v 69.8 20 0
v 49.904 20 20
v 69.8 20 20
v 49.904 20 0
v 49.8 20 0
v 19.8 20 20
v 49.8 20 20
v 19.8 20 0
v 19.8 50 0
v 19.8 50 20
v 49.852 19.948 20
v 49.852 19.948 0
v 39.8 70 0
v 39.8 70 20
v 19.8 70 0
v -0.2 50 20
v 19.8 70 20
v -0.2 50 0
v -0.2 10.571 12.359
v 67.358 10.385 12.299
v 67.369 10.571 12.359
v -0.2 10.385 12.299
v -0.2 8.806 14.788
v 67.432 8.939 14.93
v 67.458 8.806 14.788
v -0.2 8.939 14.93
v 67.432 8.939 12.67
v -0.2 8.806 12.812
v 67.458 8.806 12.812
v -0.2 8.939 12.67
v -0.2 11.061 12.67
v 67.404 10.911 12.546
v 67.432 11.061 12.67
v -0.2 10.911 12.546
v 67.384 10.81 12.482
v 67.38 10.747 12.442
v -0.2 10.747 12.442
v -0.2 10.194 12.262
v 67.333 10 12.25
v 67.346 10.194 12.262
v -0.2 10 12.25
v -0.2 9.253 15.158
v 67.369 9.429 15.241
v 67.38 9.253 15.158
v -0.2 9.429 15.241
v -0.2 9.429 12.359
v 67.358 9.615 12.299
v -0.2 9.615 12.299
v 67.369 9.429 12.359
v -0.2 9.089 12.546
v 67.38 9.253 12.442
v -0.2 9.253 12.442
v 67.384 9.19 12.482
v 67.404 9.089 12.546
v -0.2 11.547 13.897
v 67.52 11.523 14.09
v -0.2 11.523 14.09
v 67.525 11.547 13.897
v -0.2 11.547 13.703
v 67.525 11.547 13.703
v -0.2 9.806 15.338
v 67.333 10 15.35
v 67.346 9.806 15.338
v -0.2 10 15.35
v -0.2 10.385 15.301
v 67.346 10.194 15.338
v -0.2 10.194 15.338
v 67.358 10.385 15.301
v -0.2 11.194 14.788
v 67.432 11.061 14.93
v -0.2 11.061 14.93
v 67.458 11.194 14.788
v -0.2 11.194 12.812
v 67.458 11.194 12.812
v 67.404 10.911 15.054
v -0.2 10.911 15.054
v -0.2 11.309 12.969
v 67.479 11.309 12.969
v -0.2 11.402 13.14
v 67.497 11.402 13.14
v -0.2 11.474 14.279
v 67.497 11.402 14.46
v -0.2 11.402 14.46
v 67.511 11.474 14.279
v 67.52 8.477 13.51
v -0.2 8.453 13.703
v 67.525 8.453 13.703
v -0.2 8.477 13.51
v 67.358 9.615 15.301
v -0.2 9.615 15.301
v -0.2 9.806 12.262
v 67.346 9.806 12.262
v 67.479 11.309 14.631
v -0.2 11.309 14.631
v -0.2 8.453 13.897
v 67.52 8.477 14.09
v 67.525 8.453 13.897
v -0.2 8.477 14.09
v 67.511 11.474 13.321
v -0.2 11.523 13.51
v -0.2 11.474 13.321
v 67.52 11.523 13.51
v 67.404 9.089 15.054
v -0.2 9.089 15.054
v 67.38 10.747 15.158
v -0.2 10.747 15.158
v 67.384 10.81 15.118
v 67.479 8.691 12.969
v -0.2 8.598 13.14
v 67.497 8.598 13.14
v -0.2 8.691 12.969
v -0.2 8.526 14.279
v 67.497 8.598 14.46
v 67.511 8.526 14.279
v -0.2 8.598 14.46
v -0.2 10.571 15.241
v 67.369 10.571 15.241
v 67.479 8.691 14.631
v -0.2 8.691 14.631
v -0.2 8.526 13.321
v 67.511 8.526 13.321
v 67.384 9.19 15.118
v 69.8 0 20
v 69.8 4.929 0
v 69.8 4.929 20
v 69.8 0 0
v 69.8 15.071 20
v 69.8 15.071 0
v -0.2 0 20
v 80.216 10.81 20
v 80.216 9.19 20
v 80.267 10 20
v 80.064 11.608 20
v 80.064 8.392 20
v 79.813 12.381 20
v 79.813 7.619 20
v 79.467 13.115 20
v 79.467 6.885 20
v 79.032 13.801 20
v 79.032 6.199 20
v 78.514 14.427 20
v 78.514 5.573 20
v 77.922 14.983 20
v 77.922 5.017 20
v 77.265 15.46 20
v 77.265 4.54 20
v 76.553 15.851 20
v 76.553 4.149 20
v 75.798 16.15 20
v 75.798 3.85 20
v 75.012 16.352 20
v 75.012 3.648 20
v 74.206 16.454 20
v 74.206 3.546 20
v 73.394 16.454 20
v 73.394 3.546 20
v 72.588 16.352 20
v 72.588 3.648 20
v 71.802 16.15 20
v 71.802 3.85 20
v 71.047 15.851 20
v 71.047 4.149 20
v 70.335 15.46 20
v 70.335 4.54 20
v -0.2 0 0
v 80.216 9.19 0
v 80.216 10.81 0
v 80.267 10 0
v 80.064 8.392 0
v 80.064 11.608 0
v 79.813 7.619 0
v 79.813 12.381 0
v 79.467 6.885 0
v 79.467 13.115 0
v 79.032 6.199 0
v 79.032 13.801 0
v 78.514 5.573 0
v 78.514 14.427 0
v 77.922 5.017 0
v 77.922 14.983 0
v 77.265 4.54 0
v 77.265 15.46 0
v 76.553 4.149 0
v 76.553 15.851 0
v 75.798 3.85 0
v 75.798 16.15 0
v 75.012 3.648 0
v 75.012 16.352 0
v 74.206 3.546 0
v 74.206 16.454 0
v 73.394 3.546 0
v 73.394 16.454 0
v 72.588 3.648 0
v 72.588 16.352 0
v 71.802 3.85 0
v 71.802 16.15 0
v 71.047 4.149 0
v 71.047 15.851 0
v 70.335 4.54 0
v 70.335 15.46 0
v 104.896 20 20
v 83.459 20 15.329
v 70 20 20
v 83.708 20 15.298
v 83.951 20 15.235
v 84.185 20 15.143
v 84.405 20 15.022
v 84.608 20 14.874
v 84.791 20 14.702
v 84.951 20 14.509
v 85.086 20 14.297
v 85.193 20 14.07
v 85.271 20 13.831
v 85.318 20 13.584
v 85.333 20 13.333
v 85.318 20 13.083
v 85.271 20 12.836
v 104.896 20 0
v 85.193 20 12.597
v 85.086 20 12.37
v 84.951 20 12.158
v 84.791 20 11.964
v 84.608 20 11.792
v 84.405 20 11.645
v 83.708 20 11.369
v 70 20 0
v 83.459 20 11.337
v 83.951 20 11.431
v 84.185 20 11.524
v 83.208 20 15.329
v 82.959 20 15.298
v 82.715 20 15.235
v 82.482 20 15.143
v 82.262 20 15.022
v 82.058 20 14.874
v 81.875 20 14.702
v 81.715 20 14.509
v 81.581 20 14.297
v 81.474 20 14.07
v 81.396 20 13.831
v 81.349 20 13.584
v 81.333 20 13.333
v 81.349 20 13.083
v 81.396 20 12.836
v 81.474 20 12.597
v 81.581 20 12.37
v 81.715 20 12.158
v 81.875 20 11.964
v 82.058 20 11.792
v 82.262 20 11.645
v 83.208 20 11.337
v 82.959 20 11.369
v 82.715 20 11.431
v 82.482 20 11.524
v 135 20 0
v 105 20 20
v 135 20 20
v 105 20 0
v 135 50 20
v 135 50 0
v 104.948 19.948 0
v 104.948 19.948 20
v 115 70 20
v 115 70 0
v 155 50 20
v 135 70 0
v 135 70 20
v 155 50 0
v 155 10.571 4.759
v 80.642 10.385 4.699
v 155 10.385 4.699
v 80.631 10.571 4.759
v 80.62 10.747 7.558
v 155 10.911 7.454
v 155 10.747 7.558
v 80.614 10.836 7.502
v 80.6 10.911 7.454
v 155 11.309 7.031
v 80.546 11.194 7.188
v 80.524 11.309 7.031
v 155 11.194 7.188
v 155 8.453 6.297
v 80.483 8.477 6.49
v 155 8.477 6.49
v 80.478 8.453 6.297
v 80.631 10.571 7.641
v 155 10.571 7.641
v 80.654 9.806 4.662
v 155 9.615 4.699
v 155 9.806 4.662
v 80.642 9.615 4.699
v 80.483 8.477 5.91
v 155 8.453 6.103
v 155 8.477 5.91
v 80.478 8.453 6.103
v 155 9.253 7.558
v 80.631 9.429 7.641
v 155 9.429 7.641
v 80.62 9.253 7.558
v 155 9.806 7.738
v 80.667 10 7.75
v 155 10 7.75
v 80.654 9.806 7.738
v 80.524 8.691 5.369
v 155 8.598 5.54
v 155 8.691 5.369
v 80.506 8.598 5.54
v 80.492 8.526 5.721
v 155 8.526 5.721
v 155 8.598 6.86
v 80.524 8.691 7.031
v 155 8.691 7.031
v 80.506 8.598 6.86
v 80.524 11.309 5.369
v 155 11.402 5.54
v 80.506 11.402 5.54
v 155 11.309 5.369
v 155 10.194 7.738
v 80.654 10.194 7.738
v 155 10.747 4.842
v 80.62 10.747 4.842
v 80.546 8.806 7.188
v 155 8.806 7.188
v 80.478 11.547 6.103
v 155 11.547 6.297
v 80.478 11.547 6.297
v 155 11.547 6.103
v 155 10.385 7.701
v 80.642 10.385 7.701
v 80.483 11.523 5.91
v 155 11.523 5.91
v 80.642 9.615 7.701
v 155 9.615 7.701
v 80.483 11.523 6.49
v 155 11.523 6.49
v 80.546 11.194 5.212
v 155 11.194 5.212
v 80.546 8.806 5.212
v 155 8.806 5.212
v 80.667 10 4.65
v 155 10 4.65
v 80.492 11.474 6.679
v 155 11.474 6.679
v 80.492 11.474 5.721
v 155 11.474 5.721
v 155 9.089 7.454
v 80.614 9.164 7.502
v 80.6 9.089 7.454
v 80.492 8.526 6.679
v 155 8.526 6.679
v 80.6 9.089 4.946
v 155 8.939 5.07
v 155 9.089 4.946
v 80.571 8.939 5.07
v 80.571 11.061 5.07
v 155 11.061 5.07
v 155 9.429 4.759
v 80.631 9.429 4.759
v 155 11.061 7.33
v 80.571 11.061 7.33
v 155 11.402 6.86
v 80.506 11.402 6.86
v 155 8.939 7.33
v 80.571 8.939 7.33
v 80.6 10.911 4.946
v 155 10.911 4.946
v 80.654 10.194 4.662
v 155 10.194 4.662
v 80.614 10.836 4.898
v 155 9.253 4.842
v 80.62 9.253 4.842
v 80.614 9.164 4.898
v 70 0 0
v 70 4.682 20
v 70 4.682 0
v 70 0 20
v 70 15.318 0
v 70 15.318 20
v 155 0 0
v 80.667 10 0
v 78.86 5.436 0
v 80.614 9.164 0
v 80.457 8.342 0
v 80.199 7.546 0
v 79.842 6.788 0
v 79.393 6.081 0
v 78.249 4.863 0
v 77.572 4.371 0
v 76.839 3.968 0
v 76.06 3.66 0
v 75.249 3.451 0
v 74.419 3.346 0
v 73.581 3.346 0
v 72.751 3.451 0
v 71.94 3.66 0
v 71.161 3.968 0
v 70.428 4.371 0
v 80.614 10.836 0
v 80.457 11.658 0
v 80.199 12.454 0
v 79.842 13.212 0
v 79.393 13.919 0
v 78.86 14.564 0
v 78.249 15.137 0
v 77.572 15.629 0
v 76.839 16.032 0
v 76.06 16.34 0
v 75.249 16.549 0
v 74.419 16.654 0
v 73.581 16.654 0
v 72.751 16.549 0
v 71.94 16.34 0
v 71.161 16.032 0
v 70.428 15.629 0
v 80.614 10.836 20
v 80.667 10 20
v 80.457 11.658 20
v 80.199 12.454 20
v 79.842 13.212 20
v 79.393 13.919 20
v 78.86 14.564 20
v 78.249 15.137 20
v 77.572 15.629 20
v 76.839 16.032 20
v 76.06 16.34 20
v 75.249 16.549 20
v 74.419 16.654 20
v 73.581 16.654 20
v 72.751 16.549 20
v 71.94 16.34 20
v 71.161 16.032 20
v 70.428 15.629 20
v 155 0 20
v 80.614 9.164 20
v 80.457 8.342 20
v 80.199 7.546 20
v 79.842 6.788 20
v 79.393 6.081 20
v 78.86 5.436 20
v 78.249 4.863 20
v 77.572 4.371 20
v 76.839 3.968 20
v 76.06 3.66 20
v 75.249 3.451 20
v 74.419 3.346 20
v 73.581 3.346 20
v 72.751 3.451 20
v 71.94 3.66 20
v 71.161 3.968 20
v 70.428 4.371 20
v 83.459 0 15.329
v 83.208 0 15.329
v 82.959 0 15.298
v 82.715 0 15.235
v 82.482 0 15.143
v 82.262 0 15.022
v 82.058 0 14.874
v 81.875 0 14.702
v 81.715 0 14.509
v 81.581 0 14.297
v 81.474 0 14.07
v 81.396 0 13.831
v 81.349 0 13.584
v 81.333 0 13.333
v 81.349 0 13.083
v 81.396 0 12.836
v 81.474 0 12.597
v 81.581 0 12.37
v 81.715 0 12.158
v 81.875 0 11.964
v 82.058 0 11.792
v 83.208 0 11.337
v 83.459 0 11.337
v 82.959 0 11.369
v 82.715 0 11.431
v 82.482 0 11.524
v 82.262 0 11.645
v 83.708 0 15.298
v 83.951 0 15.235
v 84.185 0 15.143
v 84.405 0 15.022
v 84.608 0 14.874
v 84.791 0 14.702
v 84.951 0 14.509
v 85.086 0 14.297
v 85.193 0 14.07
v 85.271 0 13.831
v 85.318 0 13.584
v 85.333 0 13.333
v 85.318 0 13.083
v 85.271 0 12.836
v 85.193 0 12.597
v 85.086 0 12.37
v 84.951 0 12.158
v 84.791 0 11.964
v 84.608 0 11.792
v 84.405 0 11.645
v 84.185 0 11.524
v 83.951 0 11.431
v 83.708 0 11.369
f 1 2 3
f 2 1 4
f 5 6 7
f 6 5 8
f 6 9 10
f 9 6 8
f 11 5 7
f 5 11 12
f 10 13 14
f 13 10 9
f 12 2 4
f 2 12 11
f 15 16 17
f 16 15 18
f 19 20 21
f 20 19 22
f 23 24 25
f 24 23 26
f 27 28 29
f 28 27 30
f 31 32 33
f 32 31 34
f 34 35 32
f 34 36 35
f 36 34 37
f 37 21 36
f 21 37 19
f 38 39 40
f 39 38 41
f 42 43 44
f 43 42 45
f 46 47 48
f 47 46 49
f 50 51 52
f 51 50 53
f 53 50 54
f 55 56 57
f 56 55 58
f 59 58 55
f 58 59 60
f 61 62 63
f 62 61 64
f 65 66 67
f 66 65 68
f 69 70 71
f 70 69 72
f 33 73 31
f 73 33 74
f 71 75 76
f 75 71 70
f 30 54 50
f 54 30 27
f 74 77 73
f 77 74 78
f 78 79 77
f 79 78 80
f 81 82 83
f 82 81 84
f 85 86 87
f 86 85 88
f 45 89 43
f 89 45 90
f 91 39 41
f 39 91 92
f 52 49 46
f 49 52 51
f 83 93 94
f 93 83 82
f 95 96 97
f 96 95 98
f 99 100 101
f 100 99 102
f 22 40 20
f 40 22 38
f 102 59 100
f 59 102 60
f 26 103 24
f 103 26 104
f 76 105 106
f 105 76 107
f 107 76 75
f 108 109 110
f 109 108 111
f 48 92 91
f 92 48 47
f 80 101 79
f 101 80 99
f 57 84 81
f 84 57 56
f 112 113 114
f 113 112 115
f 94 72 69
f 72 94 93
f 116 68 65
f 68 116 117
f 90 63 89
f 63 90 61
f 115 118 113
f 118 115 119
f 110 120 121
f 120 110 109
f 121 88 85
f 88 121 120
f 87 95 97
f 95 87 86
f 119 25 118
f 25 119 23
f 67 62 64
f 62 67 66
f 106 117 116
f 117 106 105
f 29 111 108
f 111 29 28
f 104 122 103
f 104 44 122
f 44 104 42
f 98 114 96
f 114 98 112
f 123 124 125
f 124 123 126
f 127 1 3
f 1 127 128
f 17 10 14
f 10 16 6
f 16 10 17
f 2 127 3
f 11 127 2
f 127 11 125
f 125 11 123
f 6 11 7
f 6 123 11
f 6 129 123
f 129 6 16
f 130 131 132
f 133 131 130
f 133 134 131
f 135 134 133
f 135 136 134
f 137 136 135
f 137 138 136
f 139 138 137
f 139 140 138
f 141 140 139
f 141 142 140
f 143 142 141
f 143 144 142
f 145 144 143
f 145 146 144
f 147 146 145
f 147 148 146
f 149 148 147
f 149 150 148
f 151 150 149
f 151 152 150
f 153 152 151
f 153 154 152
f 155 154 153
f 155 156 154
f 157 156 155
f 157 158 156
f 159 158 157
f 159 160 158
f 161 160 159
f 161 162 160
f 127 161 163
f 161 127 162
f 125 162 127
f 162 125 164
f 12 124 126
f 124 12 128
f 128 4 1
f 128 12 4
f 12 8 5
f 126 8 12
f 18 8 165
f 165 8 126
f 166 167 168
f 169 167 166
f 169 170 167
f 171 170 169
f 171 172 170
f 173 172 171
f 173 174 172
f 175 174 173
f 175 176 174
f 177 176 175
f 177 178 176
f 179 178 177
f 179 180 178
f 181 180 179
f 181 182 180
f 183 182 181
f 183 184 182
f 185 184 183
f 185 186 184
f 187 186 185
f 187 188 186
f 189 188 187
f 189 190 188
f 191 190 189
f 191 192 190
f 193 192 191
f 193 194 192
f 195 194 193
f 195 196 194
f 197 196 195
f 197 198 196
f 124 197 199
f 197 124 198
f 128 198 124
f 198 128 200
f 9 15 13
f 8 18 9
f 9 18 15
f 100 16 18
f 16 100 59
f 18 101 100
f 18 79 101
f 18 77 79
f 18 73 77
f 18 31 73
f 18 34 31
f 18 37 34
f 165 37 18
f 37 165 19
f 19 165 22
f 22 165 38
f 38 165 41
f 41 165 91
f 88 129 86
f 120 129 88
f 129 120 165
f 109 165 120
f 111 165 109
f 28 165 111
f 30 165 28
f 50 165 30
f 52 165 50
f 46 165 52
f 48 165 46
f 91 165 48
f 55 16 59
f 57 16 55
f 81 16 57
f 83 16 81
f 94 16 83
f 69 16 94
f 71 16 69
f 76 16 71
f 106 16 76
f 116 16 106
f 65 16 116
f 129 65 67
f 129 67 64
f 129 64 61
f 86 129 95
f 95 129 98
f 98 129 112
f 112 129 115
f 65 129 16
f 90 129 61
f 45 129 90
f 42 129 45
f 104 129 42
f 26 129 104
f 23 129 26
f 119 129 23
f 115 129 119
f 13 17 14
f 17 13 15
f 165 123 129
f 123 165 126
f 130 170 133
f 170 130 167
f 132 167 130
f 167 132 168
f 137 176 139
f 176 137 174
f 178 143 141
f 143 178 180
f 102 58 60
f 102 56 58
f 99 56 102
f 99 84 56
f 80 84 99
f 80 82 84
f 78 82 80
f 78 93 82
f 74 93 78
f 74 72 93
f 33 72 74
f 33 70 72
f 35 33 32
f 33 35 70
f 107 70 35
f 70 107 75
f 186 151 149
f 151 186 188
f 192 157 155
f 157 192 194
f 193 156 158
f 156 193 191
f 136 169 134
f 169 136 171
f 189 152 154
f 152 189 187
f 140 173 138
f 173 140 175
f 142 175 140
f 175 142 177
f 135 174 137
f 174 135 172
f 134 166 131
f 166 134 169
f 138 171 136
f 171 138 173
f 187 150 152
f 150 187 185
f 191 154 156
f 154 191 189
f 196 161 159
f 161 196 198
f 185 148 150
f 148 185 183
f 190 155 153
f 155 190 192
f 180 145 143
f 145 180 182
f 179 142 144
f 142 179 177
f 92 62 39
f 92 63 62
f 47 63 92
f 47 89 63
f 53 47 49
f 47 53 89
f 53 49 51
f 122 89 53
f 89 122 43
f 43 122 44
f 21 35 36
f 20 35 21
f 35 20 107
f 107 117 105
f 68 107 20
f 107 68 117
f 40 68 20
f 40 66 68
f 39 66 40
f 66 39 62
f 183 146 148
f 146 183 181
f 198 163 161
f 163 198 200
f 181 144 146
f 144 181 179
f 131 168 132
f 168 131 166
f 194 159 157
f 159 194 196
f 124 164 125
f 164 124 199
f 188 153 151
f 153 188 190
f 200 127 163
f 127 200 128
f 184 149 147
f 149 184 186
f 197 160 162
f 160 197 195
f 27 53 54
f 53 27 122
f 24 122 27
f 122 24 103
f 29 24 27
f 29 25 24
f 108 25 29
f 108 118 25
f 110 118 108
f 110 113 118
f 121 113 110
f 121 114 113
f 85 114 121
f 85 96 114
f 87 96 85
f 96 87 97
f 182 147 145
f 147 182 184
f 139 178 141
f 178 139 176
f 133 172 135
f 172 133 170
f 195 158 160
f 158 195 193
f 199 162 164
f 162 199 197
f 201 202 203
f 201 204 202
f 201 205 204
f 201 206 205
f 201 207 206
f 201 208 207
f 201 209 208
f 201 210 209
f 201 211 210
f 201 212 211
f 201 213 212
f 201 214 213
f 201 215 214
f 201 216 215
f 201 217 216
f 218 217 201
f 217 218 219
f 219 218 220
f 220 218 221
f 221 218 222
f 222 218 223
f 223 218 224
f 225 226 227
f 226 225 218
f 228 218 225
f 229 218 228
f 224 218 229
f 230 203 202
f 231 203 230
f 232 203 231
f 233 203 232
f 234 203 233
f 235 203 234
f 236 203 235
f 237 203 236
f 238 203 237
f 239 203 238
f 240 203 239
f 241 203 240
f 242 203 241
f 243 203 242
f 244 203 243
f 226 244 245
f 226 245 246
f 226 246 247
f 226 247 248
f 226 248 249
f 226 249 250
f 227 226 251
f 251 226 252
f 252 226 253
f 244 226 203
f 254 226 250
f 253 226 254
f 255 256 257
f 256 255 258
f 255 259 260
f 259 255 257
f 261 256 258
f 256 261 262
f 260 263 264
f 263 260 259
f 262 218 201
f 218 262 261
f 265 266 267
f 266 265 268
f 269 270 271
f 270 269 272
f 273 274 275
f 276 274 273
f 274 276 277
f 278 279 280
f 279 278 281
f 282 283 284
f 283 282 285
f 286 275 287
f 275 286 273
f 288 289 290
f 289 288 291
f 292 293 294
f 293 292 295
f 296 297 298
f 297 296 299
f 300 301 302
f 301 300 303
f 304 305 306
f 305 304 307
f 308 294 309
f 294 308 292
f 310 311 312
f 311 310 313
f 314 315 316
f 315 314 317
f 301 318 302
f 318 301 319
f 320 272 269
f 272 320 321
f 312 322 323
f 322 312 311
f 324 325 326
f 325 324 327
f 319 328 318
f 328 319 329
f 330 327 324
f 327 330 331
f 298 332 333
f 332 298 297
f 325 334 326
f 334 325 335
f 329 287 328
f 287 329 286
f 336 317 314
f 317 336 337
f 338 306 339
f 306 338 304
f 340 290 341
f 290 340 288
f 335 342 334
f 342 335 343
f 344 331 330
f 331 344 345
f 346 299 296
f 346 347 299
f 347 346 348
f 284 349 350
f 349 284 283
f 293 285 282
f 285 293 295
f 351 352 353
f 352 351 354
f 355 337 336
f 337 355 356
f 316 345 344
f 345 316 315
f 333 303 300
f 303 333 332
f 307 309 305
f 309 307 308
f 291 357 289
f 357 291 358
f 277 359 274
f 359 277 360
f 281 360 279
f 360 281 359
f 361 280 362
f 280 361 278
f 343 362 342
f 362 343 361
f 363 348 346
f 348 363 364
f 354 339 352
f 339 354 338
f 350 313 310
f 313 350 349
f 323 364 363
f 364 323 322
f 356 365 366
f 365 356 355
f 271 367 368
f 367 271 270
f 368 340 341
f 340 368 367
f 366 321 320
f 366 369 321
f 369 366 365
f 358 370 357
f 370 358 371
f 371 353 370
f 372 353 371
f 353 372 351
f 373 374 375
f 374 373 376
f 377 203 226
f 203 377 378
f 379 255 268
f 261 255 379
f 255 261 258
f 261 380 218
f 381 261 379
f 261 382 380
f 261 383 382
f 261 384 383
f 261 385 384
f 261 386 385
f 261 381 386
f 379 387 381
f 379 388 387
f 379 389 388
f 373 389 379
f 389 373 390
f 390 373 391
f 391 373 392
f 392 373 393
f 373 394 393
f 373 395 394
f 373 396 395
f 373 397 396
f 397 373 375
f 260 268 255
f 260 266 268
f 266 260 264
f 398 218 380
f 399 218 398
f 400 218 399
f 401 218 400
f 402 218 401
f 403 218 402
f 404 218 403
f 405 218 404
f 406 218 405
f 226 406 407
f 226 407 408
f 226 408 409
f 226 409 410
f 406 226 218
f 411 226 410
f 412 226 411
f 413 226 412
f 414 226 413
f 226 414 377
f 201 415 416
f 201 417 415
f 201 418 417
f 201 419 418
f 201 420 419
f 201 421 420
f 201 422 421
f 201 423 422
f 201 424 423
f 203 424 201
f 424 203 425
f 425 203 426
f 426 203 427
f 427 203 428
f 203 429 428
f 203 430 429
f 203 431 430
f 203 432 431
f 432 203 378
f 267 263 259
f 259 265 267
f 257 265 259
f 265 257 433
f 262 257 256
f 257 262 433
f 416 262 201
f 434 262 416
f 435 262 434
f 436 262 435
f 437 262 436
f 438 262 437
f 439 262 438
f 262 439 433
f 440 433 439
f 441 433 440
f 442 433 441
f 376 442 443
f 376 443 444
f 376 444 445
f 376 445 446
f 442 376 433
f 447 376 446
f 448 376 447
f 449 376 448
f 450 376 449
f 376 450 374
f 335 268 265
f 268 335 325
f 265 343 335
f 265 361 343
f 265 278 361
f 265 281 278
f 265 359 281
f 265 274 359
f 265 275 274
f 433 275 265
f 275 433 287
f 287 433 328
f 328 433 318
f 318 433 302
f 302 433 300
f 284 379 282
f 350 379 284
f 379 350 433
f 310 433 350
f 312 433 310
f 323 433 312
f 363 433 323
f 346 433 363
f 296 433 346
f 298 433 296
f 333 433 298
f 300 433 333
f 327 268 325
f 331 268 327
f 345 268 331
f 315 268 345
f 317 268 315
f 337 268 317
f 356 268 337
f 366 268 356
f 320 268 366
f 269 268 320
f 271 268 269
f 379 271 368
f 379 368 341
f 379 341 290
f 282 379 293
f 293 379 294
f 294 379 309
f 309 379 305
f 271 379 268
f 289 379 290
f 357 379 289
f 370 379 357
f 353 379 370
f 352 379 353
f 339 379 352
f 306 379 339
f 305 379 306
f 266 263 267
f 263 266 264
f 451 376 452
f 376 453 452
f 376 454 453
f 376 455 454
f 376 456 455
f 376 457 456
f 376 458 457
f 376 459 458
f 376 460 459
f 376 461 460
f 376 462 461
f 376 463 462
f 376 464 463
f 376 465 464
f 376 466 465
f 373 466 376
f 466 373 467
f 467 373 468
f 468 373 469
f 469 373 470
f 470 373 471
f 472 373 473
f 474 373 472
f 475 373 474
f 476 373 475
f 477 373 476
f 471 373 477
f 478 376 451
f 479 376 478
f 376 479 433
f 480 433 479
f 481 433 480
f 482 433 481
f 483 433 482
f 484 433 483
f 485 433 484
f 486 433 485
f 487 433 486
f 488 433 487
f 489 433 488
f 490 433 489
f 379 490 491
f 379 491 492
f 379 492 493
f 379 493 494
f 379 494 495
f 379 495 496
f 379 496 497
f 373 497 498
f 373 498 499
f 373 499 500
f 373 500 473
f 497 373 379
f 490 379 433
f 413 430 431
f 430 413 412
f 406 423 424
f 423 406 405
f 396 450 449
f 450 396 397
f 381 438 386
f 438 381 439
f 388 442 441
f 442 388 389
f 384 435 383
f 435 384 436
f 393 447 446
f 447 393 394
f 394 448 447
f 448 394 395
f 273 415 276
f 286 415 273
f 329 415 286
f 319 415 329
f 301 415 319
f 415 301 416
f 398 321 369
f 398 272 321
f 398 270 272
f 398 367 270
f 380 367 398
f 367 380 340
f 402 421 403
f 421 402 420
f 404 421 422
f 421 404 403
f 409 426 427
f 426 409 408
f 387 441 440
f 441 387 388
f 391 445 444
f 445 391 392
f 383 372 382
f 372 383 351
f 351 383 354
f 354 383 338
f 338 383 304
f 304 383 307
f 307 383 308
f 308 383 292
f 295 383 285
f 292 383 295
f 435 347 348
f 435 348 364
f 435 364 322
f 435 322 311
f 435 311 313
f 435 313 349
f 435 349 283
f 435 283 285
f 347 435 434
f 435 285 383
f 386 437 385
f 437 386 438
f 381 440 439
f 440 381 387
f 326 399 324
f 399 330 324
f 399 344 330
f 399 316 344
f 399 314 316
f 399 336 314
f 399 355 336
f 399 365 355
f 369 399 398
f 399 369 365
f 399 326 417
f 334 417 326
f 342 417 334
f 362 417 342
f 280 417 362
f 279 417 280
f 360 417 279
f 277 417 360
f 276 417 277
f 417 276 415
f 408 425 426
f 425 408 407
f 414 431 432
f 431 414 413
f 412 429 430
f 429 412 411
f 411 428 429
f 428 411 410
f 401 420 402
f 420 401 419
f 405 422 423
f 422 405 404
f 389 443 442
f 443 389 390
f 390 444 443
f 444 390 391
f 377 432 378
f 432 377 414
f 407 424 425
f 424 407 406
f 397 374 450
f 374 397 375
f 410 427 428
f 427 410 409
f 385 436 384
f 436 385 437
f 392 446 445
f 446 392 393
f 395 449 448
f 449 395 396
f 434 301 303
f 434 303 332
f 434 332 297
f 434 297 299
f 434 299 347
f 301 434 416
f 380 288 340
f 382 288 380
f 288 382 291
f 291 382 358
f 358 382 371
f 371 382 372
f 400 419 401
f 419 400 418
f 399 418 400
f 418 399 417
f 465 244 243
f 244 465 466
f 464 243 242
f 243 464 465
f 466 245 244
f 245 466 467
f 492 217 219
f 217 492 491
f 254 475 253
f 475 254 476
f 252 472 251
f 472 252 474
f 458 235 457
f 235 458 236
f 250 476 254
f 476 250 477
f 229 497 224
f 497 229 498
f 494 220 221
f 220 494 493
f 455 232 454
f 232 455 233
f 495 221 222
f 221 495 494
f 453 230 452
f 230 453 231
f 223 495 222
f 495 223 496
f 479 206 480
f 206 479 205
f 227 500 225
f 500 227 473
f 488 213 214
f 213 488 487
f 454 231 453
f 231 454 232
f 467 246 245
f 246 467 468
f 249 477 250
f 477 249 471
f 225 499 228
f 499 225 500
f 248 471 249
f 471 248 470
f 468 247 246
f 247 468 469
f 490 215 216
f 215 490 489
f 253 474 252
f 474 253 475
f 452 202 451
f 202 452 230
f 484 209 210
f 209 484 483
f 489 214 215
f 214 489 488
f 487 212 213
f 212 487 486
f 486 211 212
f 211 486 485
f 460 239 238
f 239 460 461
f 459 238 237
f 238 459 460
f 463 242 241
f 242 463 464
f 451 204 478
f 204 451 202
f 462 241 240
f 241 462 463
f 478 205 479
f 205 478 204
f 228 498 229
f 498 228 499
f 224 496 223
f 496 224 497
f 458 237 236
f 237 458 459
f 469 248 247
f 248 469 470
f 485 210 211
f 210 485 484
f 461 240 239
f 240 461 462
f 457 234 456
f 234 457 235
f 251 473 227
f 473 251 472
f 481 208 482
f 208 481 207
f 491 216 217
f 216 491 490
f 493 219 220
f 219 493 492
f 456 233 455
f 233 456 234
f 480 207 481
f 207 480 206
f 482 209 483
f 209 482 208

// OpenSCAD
// width x, depth y, height z
// mm

$fn=50;

sy=20; //strength in y
sz=20; //strenght in z (test with 2)
by=20; //block y
e=100; //extra for substraction

module main(sy,sz,by,e,l){
    difference(){
        cube([l+sy,50+sy,sz]);
        union(){
            translate([sy+35,sy,-e/2]){ // SA
                cube([l-30,60,sz+e]);
            }
            translate([sy,sy,-e/2]){ // SB
                cube([l,30,sz+e]);
            }
            translate([sy,sy+30,-sz+e/2]){ //SC
                rotate([180,0,45]){
                    cube([l,42.5,sz+e]);
                }
            }
            translate([0,sy+30,-sz-e/2]){ //SD
                rotate([0,0,45]){
                    translate([-e/2,0,0]){
                        cube([l+e,40,sz+e]);
                    }
                }
            }
            vd=3.1; // Varilla refuerzo
            translate([e/2,sy/2,sz-vd*2]){
                rotate([0,90,0]){
                    cylinder(2*e,vd/2,vd/2,true);
                }
            }
        }
    }
}
p=4; //power, intersection of the cylinder
module mainM(sy,sz,by,e,p){
    l=50;
    main(sy,sz,by,e,l);
    translate([l+sy+p,sy/2,sz/2]){
        cylinder(sz,sy/3-0.2,sy/3-0.2,true);
    }
}

module mainF(sy,sz,by,e,p){
    l=65;

    rotate([0,180,0]){
        difference(){
            main(sy,sz,by,e,l);
            translate([l+sy-p,sy/2,-sz/2]){
                cylinder(e,sy/3,sy/3,true);
            }
            hd=4; // Forat per a penjar
        
            translate([l+sy/3,sy/2,sz/3]){
                rotate([90,0,0]){
                    cylinder(2*e,hd/2,hd/2,true);
                }
            }    
        }
    }
}

translate([-0.2,0,0]){
    mainM(sy,sz,by,e,p);
}
translate([2*57.5+2*sy,0,sz]){
    mainF(sy,sz,by,e,p);
}
